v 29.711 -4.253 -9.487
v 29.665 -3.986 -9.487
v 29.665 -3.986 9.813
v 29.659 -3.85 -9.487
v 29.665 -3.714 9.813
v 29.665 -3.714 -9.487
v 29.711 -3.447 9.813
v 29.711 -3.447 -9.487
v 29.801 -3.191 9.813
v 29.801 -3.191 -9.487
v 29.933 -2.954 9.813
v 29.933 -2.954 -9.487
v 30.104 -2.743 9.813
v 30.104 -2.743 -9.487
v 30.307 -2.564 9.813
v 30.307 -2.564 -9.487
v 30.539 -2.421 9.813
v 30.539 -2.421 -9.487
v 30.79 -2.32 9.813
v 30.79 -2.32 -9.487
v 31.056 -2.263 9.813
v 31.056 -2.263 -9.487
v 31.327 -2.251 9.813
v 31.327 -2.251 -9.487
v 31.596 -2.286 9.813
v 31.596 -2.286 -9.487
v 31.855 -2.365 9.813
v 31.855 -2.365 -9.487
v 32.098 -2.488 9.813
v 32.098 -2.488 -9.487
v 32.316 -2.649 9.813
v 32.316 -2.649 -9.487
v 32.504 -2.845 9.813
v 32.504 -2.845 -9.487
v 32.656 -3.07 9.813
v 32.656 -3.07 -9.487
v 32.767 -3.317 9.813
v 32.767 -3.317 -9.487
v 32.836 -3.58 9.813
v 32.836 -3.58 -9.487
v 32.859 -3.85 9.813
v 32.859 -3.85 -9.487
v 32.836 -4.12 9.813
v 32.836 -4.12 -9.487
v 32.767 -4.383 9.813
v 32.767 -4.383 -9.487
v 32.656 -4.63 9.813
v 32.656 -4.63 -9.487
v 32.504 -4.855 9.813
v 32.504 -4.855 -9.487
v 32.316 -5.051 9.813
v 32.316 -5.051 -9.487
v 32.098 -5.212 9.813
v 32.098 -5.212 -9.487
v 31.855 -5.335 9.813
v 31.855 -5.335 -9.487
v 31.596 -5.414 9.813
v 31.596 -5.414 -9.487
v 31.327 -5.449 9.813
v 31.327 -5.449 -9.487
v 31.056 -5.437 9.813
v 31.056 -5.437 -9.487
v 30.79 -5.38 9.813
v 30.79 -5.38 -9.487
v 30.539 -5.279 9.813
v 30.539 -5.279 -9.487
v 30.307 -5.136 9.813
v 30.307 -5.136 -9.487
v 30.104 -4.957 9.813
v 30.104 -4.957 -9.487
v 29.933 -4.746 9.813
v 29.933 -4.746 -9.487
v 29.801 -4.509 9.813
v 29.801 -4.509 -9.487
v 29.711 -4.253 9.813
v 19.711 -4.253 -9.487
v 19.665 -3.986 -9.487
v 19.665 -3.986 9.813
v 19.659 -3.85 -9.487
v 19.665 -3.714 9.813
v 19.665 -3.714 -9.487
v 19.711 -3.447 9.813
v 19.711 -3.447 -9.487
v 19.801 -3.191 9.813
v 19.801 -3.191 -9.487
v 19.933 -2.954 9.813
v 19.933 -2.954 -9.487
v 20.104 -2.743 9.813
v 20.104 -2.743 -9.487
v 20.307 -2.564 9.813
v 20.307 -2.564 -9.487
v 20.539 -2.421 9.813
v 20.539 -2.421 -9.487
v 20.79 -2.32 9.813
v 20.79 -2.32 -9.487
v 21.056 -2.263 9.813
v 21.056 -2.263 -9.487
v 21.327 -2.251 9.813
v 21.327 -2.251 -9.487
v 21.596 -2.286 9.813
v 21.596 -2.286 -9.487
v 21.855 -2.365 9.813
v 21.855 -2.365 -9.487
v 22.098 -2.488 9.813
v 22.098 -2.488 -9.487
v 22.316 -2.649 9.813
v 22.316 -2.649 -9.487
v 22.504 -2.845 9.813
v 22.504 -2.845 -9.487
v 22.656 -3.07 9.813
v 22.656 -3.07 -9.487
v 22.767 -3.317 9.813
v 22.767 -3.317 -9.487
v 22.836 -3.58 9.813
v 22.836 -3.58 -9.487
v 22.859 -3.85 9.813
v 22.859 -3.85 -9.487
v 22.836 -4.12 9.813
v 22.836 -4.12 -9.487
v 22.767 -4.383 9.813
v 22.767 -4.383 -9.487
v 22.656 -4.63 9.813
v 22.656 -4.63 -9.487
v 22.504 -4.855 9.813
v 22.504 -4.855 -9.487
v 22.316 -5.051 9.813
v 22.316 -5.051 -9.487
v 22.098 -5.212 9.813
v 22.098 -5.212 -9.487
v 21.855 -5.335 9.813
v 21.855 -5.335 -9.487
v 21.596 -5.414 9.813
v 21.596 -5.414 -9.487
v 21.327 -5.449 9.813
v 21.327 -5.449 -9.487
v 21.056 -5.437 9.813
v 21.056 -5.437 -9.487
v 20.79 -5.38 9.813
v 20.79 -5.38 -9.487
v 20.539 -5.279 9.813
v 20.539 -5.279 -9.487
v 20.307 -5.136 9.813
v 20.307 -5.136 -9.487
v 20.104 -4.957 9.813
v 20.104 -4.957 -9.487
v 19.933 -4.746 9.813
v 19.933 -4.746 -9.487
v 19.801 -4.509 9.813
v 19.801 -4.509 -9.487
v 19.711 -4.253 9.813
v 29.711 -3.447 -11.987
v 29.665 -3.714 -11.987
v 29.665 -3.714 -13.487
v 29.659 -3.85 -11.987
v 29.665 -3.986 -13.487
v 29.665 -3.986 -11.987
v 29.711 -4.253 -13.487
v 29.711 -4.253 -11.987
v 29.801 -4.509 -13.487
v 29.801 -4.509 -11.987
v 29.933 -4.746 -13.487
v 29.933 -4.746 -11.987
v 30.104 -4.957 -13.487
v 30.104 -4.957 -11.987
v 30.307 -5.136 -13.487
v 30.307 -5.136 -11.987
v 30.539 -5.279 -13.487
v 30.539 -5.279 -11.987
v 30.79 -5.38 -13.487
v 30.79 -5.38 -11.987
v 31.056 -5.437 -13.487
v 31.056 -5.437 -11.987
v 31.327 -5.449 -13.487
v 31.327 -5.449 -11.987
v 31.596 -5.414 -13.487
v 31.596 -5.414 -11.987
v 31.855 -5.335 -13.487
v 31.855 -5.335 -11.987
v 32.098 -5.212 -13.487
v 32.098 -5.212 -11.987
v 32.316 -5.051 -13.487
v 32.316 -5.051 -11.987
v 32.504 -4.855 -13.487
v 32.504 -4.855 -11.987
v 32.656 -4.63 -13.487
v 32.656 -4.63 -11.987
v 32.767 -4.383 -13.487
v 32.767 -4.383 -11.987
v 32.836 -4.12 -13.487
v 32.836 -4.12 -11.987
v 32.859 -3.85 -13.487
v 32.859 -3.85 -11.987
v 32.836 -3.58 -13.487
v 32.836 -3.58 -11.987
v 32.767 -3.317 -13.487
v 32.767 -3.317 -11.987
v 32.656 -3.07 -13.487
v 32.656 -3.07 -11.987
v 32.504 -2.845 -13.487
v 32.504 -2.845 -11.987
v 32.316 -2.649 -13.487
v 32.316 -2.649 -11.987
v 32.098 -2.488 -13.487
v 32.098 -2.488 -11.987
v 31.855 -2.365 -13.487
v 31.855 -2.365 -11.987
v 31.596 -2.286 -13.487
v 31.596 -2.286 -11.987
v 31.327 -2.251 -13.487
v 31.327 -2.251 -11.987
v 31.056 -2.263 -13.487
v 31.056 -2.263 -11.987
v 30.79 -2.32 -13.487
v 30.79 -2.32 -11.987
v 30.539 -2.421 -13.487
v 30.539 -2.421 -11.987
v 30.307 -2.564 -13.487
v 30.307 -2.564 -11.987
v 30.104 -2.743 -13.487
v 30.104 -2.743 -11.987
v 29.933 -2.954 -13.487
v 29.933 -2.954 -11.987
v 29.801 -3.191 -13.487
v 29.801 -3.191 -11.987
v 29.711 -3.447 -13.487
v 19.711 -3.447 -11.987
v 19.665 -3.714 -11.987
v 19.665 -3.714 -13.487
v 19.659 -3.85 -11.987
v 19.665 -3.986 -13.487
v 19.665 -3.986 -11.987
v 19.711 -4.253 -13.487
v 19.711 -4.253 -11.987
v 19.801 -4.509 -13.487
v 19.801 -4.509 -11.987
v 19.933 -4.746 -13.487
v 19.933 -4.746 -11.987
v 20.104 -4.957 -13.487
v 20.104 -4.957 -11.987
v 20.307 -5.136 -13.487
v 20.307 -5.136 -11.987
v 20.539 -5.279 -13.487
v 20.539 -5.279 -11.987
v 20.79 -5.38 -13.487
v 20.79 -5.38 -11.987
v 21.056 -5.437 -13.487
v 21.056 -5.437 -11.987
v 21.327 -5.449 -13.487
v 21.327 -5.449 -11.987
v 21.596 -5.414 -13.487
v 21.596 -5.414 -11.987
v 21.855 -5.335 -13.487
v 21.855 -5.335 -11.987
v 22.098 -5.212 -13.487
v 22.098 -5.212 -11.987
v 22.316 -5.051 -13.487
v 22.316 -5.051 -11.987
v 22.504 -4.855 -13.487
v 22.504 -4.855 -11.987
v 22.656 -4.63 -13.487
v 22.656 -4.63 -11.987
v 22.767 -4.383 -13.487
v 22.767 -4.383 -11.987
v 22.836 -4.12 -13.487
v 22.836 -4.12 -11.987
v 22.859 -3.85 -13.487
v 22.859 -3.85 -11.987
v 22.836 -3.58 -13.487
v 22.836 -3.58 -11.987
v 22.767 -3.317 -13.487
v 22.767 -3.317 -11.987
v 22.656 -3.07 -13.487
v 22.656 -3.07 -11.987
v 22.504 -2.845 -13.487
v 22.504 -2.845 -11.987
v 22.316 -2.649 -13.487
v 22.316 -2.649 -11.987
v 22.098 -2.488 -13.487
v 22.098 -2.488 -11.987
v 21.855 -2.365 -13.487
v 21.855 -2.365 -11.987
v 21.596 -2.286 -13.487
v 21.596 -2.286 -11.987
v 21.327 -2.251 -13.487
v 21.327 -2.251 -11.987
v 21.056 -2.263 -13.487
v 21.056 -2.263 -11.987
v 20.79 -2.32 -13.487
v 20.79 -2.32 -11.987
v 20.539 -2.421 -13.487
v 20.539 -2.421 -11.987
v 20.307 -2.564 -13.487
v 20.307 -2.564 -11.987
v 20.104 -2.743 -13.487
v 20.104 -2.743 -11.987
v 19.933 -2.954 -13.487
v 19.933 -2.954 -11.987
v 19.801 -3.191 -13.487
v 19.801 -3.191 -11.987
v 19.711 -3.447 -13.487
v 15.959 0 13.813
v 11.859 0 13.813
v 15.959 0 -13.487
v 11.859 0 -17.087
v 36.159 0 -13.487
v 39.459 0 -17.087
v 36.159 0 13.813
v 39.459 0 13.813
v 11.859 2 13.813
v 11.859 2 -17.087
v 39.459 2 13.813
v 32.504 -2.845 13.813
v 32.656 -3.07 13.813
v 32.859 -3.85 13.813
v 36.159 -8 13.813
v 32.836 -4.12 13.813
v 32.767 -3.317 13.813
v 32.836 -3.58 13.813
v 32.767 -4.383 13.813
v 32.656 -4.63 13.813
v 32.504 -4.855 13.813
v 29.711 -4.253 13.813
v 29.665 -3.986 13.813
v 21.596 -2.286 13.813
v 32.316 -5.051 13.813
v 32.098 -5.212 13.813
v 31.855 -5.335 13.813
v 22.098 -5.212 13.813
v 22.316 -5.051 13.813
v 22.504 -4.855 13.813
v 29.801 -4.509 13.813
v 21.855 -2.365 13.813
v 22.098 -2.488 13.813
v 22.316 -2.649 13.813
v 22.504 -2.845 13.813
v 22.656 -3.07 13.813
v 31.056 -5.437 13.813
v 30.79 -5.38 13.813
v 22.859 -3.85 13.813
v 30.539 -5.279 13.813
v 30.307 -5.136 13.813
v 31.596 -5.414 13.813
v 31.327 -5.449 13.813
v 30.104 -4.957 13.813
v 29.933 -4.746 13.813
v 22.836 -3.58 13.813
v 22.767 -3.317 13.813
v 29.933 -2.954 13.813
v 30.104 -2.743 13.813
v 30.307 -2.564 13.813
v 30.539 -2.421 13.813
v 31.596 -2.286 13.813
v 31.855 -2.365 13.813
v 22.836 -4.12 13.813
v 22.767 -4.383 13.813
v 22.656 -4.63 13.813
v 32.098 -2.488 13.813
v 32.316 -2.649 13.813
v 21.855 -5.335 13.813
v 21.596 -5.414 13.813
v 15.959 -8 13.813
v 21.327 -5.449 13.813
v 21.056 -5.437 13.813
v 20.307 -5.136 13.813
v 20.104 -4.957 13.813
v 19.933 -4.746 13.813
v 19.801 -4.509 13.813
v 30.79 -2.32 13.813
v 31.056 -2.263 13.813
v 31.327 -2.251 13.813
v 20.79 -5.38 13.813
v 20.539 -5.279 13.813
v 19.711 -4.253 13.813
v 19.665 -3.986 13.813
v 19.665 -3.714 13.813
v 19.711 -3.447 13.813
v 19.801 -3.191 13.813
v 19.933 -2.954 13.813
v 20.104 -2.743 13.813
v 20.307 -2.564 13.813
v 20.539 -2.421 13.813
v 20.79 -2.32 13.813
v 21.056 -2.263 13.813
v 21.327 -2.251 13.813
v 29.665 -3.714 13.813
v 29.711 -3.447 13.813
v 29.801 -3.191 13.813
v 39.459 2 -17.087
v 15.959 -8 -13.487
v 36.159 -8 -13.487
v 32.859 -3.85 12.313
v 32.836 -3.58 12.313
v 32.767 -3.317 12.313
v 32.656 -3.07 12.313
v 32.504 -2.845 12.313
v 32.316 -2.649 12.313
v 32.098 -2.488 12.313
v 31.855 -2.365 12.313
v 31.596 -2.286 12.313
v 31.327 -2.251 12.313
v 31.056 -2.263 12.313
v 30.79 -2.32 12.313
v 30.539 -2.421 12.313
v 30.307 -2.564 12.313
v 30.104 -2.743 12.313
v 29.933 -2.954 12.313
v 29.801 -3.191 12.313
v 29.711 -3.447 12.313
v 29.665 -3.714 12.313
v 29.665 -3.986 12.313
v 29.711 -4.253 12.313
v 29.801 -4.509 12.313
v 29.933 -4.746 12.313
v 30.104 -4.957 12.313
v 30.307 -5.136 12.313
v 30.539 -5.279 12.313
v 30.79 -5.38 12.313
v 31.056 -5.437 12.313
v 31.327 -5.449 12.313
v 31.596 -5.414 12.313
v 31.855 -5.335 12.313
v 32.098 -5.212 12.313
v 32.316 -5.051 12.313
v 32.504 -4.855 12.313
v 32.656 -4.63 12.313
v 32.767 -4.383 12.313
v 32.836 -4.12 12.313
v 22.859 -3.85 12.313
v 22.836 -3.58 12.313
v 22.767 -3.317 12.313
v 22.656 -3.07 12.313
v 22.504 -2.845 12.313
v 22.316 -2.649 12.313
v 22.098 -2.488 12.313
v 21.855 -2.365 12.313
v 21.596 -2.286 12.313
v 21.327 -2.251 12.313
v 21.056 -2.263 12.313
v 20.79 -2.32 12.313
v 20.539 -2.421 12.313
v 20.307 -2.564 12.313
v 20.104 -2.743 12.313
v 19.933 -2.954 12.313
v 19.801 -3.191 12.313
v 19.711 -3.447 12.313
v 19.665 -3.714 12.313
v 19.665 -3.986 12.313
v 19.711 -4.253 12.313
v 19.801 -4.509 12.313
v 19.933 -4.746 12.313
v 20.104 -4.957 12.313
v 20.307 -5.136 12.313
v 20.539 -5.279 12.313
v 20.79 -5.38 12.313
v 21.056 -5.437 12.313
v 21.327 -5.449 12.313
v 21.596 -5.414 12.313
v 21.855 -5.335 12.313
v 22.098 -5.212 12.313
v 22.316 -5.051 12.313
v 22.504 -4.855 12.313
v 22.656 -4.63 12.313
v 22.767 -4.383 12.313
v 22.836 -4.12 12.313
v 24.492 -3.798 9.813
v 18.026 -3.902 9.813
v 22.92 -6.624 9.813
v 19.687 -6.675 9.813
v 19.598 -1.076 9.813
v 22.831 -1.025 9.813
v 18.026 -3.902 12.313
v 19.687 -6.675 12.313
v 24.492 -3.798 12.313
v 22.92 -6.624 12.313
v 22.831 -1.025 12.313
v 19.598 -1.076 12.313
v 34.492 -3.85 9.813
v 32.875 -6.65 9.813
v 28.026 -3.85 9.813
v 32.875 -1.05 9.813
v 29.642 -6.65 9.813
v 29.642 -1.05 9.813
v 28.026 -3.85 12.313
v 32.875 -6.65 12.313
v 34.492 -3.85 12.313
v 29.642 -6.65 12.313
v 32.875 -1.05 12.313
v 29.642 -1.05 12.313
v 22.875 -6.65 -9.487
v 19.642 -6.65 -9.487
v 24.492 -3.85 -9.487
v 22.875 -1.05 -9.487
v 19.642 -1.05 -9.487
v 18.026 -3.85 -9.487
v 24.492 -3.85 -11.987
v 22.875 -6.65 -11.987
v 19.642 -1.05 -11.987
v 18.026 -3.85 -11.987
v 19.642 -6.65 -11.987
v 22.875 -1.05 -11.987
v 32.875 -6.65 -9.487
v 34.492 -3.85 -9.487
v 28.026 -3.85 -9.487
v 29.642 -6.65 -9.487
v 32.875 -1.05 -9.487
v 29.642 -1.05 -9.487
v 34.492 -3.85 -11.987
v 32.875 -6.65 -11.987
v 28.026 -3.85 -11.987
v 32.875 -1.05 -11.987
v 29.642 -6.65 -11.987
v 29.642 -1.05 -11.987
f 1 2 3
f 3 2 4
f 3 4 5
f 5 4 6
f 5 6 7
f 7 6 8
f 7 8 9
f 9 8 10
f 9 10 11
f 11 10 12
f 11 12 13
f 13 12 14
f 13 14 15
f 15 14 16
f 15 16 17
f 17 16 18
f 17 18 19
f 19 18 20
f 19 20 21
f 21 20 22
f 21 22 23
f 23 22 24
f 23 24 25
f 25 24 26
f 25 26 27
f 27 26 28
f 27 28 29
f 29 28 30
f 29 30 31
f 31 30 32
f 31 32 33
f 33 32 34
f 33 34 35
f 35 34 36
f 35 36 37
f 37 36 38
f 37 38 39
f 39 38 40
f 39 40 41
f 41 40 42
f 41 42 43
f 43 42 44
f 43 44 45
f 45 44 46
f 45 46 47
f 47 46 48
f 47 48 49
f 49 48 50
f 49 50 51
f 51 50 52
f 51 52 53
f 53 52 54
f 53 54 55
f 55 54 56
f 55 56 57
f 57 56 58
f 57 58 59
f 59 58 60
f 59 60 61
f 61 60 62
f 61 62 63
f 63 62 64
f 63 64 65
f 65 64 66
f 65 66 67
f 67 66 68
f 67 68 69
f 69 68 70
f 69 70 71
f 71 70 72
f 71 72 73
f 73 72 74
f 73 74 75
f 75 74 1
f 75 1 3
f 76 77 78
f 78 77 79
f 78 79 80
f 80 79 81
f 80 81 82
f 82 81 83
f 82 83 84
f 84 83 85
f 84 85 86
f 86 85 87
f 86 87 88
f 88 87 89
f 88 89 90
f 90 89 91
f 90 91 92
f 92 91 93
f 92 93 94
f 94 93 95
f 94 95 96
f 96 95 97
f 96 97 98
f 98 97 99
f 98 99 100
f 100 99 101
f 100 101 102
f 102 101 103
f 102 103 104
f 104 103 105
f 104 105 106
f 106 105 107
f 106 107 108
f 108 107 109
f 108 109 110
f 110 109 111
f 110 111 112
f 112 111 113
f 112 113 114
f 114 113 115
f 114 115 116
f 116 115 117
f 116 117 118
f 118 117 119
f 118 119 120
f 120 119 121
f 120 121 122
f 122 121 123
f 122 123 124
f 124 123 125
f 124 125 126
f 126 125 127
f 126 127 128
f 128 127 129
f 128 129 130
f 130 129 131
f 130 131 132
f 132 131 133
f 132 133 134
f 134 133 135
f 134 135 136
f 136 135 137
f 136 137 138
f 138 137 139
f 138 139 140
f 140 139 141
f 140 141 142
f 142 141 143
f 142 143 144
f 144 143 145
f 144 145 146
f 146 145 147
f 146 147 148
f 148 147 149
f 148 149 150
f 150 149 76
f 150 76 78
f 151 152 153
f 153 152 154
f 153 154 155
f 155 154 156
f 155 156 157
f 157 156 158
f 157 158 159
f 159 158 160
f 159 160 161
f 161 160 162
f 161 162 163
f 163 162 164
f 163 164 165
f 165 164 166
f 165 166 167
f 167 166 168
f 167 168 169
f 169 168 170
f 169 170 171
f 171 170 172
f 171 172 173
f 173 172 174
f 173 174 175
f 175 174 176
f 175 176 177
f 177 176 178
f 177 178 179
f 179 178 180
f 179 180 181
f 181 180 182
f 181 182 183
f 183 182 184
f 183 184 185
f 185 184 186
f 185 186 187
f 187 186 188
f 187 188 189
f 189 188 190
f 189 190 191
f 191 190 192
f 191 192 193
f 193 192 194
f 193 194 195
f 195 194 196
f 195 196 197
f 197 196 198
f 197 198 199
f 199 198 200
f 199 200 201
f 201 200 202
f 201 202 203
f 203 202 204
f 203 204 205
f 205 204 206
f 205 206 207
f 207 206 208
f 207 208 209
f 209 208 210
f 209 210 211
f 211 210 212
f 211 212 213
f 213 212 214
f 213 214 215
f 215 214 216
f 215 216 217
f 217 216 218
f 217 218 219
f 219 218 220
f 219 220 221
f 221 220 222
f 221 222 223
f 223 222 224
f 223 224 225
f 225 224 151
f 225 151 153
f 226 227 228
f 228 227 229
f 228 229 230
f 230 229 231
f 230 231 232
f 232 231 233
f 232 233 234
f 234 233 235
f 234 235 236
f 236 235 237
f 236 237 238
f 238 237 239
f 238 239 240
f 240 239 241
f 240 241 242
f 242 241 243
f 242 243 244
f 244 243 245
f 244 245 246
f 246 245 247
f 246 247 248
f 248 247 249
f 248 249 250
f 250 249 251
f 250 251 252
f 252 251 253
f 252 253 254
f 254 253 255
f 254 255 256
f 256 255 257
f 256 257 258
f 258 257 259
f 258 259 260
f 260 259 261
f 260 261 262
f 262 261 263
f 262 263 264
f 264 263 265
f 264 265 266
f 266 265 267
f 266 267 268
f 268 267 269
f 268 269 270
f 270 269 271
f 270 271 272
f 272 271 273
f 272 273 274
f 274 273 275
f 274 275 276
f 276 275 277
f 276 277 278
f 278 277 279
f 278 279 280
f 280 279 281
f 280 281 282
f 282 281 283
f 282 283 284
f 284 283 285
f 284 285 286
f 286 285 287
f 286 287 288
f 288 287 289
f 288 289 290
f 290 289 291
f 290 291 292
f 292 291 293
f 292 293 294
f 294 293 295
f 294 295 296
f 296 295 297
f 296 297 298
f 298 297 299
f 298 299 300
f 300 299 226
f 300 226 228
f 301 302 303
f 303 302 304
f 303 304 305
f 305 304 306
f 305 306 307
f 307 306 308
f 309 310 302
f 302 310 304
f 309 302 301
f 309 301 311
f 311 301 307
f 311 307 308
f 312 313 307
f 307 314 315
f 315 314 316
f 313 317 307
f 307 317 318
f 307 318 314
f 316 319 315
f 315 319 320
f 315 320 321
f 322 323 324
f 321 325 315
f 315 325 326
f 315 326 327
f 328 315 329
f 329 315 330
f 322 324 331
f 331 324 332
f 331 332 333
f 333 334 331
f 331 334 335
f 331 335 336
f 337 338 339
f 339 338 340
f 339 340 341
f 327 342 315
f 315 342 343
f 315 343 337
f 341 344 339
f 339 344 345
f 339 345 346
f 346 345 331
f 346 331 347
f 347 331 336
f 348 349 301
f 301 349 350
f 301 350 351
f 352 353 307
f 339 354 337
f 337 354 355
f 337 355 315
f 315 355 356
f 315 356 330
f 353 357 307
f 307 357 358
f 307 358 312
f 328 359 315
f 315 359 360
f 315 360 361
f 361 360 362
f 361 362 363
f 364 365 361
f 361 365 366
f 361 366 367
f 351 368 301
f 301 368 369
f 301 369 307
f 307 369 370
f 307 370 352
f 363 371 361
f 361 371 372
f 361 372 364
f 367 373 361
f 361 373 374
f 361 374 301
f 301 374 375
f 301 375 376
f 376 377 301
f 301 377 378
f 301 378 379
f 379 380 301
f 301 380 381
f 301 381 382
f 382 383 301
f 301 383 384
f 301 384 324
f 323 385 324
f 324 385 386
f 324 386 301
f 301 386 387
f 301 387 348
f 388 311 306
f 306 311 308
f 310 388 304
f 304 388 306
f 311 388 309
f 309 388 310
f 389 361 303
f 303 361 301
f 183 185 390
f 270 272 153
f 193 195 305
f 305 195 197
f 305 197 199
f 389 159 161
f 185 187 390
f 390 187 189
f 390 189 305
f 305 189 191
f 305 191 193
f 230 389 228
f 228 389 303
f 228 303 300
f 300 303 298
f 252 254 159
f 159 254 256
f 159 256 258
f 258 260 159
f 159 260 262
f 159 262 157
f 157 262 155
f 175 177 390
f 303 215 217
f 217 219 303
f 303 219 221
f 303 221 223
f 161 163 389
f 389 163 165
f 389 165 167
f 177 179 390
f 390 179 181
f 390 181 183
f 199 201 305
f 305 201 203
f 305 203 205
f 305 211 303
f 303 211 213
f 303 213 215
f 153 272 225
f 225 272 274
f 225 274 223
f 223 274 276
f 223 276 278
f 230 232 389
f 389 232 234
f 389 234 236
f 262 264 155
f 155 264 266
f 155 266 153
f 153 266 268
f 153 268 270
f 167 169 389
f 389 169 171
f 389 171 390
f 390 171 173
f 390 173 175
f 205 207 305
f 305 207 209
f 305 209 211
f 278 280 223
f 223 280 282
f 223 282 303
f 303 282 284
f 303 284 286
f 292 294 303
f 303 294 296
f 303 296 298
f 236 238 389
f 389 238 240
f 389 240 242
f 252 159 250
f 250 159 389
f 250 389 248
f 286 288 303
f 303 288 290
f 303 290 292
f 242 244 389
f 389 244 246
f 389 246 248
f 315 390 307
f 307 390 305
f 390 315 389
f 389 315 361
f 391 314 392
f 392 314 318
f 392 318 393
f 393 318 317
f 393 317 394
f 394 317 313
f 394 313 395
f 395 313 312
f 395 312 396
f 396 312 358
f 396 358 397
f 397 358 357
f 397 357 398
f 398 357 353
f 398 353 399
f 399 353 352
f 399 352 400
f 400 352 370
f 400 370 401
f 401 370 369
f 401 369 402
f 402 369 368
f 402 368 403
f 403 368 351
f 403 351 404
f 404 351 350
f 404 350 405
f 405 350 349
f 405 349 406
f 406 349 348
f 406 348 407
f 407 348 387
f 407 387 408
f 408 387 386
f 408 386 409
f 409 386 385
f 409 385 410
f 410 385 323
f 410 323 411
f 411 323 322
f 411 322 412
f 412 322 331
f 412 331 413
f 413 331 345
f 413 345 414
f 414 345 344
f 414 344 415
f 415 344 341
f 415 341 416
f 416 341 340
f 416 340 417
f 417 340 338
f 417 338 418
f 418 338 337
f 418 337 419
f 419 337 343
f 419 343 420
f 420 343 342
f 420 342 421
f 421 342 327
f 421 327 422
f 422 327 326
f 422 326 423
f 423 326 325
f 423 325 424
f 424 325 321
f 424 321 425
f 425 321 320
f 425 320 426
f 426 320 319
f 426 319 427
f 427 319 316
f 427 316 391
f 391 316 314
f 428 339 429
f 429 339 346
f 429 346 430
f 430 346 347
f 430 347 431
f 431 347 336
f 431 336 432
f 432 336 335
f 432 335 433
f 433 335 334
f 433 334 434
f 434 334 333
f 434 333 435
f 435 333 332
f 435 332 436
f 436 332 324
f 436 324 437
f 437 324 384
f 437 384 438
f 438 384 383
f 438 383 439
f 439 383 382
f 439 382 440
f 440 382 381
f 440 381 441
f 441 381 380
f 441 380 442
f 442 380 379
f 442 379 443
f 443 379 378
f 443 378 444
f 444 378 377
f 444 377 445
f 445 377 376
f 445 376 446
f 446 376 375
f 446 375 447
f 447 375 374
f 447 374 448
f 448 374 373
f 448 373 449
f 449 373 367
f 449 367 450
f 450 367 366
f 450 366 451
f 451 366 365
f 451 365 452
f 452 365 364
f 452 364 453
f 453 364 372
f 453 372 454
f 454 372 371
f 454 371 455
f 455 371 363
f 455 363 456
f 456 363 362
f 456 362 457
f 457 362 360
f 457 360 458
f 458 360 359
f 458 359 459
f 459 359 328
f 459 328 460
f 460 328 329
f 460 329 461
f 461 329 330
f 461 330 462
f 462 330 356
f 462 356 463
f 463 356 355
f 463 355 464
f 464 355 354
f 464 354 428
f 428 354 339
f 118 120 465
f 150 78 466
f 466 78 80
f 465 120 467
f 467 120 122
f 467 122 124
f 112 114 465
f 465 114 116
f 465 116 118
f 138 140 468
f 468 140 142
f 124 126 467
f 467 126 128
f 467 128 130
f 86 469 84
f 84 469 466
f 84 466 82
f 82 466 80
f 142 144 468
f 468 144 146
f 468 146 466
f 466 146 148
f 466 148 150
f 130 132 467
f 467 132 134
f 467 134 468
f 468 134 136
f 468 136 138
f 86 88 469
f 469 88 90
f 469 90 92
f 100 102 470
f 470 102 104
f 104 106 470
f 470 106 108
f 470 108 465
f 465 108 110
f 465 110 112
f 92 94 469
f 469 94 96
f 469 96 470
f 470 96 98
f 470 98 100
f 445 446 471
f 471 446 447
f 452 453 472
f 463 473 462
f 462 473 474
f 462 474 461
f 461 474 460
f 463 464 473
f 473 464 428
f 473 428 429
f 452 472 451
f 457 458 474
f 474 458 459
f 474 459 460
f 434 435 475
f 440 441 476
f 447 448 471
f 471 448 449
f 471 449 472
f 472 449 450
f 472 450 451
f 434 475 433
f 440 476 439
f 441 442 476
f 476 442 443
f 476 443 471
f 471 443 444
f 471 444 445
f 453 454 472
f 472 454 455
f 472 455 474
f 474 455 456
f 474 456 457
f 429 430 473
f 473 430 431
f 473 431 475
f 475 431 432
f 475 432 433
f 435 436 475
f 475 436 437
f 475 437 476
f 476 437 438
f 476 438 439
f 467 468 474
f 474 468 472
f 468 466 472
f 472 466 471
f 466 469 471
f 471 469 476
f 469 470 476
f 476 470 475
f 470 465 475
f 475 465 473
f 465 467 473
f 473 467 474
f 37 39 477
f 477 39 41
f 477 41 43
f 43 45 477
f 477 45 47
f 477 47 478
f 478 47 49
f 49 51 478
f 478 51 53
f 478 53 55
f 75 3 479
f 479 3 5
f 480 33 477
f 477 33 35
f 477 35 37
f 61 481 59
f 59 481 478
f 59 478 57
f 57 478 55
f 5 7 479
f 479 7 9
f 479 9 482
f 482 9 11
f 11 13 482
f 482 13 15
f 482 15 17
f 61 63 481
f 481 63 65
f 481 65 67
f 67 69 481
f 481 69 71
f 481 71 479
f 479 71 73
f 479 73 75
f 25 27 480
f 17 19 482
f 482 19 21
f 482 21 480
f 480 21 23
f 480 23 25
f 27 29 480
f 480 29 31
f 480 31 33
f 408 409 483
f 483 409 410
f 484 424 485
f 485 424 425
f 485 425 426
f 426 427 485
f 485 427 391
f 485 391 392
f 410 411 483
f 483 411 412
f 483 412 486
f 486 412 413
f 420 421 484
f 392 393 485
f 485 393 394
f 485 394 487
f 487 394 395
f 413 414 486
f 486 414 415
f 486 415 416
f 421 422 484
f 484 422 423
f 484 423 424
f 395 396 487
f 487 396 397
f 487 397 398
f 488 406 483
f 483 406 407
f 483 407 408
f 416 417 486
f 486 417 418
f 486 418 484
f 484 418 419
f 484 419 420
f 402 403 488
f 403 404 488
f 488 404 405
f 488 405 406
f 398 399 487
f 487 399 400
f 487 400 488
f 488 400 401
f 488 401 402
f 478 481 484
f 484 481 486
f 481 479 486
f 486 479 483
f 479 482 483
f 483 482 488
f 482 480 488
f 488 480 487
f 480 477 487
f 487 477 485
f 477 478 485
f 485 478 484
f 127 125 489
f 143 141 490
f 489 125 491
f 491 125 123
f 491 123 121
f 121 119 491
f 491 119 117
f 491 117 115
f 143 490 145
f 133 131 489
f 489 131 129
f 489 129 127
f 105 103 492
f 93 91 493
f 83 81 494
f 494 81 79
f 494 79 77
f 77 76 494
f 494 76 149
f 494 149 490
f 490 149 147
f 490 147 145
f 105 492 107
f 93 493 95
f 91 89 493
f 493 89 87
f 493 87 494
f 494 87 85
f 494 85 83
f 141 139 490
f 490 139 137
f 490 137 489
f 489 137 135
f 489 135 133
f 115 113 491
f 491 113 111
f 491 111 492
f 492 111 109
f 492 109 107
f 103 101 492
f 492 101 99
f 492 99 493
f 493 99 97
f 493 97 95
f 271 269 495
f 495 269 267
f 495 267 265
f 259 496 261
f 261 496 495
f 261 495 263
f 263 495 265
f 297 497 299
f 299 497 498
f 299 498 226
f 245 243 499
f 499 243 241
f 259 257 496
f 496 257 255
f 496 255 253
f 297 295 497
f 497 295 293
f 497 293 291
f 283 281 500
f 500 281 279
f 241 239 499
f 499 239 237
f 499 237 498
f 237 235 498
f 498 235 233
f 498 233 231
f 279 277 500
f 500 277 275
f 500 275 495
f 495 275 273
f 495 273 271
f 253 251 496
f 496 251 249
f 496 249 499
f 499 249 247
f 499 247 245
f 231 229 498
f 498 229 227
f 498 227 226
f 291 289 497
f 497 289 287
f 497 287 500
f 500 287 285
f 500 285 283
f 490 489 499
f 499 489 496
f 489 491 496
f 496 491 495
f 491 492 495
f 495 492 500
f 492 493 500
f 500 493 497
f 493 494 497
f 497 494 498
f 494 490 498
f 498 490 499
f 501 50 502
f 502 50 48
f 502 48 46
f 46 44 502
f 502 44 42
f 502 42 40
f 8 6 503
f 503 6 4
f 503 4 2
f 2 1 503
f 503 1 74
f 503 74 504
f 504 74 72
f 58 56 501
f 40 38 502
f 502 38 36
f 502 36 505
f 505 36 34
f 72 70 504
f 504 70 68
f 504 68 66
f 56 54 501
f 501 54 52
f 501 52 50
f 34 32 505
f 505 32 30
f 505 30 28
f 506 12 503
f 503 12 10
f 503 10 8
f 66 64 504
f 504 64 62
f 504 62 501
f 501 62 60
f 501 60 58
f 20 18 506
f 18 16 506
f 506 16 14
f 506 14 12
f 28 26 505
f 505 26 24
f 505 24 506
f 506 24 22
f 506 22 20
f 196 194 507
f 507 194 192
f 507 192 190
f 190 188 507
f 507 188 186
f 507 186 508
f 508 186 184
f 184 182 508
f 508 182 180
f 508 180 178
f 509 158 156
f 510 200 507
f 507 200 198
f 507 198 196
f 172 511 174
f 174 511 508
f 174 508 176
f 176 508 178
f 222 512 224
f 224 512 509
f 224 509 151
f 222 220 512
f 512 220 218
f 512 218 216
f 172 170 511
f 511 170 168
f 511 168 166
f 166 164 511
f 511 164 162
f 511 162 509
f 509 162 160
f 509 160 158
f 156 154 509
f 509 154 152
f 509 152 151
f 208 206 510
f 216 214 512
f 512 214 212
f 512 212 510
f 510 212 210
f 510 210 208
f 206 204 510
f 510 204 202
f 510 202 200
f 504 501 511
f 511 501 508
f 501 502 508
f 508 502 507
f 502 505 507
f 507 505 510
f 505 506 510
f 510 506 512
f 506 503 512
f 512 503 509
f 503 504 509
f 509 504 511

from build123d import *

# Parameters (mm, degrees)
SKETCH1_W           = 27.6
SKETCH1_H           = 30.9
BOSS_EXTRUDE1_DEPTH = 2
SKETCH2_W           = 20.2
SKETCH2_H           = 27.3
BOSS_EXTRUDE2_DEPTH = 8
SKETCH3_R           = 1.6
CUT_EXTRUDE1_DEPTH  = 32
CUT_EXTRUDE2_DEPTH  = 2.5
CUT_EXTRUDE3_DEPTH  = 2.5


with BuildPart() as part:
    # Sketch1 → Boss-Extrude1 (new body)
    with BuildSketch(Plane(origin=(0, 0, 0), x_dir=(1, 0, 0), z_dir=(0, 1, 0))):
        with Locations((25.658887851, 1.636558914)):
            Rectangle(SKETCH1_W, SKETCH1_H)
    extrude(amount=BOSS_EXTRUDE1_DEPTH)

    # Sketch2 → Boss-Extrude2 (add)
    with BuildSketch(Plane.XZ):
        with Locations((26.058887851, 0.163441086)):
            Rectangle(SKETCH2_W, SKETCH2_H)
    extrude(amount=BOSS_EXTRUDE2_DEPTH)

    # Sketch3 → Cut-Extrude1 (cut)
    with BuildSketch(Plane.XY.offset(13.813441086)):
        with Locations((21.258887851, -3.85)):
            Circle(SKETCH3_R)
        with Locations((31.258887851, -3.85)):
            Circle(SKETCH3_R)
    extrude(amount=-CUT_EXTRUDE1_DEPTH, mode=Mode.SUBTRACT)

    # Sketch4 → Cut-Extrude2 (cut)
    with BuildSketch(Plane.XY.offset(12.313441086)):
        Polygon((32.875468605, -6.65), (34.492049359, -3.85), (32.875468605, -1.05), (29.642307097, -1.05), (28.025726344, -3.85), (29.642307097, -6.65), align=None)
        Polygon((22.91999145, -6.623818337), (24.491636796, -3.798351254), (22.830533197, -1.024532917), (19.597784252, -1.076181663), (18.026138906, -3.901648746), (19.687242505, -6.675467083), align=None)
    extrude(amount=-CUT_EXTRUDE2_DEPTH, mode=Mode.SUBTRACT)

    # Sketch5 → Cut-Extrude3 (cut)
    with BuildSketch(Plane(origin=(0, 0, -11.986558914), x_dir=(-1, 0, 0), z_dir=(0, 0, -1))):
        Polygon((-29.642307097, -6.65), (-28.025726344, -3.85), (-29.642307097, -1.05), (-32.875468605, -1.05), (-34.492049359, -3.85), (-32.875468605, -6.65), align=None)
        Polygon((-19.642307097, -6.65), (-18.025726344, -3.85), (-19.642307097, -1.05), (-22.875468605, -1.05), (-24.492049359, -3.85), (-22.875468605, -6.65), align=None)
    extrude(amount=-CUT_EXTRUDE3_DEPTH, mode=Mode.SUBTRACT)


solid = part.part
